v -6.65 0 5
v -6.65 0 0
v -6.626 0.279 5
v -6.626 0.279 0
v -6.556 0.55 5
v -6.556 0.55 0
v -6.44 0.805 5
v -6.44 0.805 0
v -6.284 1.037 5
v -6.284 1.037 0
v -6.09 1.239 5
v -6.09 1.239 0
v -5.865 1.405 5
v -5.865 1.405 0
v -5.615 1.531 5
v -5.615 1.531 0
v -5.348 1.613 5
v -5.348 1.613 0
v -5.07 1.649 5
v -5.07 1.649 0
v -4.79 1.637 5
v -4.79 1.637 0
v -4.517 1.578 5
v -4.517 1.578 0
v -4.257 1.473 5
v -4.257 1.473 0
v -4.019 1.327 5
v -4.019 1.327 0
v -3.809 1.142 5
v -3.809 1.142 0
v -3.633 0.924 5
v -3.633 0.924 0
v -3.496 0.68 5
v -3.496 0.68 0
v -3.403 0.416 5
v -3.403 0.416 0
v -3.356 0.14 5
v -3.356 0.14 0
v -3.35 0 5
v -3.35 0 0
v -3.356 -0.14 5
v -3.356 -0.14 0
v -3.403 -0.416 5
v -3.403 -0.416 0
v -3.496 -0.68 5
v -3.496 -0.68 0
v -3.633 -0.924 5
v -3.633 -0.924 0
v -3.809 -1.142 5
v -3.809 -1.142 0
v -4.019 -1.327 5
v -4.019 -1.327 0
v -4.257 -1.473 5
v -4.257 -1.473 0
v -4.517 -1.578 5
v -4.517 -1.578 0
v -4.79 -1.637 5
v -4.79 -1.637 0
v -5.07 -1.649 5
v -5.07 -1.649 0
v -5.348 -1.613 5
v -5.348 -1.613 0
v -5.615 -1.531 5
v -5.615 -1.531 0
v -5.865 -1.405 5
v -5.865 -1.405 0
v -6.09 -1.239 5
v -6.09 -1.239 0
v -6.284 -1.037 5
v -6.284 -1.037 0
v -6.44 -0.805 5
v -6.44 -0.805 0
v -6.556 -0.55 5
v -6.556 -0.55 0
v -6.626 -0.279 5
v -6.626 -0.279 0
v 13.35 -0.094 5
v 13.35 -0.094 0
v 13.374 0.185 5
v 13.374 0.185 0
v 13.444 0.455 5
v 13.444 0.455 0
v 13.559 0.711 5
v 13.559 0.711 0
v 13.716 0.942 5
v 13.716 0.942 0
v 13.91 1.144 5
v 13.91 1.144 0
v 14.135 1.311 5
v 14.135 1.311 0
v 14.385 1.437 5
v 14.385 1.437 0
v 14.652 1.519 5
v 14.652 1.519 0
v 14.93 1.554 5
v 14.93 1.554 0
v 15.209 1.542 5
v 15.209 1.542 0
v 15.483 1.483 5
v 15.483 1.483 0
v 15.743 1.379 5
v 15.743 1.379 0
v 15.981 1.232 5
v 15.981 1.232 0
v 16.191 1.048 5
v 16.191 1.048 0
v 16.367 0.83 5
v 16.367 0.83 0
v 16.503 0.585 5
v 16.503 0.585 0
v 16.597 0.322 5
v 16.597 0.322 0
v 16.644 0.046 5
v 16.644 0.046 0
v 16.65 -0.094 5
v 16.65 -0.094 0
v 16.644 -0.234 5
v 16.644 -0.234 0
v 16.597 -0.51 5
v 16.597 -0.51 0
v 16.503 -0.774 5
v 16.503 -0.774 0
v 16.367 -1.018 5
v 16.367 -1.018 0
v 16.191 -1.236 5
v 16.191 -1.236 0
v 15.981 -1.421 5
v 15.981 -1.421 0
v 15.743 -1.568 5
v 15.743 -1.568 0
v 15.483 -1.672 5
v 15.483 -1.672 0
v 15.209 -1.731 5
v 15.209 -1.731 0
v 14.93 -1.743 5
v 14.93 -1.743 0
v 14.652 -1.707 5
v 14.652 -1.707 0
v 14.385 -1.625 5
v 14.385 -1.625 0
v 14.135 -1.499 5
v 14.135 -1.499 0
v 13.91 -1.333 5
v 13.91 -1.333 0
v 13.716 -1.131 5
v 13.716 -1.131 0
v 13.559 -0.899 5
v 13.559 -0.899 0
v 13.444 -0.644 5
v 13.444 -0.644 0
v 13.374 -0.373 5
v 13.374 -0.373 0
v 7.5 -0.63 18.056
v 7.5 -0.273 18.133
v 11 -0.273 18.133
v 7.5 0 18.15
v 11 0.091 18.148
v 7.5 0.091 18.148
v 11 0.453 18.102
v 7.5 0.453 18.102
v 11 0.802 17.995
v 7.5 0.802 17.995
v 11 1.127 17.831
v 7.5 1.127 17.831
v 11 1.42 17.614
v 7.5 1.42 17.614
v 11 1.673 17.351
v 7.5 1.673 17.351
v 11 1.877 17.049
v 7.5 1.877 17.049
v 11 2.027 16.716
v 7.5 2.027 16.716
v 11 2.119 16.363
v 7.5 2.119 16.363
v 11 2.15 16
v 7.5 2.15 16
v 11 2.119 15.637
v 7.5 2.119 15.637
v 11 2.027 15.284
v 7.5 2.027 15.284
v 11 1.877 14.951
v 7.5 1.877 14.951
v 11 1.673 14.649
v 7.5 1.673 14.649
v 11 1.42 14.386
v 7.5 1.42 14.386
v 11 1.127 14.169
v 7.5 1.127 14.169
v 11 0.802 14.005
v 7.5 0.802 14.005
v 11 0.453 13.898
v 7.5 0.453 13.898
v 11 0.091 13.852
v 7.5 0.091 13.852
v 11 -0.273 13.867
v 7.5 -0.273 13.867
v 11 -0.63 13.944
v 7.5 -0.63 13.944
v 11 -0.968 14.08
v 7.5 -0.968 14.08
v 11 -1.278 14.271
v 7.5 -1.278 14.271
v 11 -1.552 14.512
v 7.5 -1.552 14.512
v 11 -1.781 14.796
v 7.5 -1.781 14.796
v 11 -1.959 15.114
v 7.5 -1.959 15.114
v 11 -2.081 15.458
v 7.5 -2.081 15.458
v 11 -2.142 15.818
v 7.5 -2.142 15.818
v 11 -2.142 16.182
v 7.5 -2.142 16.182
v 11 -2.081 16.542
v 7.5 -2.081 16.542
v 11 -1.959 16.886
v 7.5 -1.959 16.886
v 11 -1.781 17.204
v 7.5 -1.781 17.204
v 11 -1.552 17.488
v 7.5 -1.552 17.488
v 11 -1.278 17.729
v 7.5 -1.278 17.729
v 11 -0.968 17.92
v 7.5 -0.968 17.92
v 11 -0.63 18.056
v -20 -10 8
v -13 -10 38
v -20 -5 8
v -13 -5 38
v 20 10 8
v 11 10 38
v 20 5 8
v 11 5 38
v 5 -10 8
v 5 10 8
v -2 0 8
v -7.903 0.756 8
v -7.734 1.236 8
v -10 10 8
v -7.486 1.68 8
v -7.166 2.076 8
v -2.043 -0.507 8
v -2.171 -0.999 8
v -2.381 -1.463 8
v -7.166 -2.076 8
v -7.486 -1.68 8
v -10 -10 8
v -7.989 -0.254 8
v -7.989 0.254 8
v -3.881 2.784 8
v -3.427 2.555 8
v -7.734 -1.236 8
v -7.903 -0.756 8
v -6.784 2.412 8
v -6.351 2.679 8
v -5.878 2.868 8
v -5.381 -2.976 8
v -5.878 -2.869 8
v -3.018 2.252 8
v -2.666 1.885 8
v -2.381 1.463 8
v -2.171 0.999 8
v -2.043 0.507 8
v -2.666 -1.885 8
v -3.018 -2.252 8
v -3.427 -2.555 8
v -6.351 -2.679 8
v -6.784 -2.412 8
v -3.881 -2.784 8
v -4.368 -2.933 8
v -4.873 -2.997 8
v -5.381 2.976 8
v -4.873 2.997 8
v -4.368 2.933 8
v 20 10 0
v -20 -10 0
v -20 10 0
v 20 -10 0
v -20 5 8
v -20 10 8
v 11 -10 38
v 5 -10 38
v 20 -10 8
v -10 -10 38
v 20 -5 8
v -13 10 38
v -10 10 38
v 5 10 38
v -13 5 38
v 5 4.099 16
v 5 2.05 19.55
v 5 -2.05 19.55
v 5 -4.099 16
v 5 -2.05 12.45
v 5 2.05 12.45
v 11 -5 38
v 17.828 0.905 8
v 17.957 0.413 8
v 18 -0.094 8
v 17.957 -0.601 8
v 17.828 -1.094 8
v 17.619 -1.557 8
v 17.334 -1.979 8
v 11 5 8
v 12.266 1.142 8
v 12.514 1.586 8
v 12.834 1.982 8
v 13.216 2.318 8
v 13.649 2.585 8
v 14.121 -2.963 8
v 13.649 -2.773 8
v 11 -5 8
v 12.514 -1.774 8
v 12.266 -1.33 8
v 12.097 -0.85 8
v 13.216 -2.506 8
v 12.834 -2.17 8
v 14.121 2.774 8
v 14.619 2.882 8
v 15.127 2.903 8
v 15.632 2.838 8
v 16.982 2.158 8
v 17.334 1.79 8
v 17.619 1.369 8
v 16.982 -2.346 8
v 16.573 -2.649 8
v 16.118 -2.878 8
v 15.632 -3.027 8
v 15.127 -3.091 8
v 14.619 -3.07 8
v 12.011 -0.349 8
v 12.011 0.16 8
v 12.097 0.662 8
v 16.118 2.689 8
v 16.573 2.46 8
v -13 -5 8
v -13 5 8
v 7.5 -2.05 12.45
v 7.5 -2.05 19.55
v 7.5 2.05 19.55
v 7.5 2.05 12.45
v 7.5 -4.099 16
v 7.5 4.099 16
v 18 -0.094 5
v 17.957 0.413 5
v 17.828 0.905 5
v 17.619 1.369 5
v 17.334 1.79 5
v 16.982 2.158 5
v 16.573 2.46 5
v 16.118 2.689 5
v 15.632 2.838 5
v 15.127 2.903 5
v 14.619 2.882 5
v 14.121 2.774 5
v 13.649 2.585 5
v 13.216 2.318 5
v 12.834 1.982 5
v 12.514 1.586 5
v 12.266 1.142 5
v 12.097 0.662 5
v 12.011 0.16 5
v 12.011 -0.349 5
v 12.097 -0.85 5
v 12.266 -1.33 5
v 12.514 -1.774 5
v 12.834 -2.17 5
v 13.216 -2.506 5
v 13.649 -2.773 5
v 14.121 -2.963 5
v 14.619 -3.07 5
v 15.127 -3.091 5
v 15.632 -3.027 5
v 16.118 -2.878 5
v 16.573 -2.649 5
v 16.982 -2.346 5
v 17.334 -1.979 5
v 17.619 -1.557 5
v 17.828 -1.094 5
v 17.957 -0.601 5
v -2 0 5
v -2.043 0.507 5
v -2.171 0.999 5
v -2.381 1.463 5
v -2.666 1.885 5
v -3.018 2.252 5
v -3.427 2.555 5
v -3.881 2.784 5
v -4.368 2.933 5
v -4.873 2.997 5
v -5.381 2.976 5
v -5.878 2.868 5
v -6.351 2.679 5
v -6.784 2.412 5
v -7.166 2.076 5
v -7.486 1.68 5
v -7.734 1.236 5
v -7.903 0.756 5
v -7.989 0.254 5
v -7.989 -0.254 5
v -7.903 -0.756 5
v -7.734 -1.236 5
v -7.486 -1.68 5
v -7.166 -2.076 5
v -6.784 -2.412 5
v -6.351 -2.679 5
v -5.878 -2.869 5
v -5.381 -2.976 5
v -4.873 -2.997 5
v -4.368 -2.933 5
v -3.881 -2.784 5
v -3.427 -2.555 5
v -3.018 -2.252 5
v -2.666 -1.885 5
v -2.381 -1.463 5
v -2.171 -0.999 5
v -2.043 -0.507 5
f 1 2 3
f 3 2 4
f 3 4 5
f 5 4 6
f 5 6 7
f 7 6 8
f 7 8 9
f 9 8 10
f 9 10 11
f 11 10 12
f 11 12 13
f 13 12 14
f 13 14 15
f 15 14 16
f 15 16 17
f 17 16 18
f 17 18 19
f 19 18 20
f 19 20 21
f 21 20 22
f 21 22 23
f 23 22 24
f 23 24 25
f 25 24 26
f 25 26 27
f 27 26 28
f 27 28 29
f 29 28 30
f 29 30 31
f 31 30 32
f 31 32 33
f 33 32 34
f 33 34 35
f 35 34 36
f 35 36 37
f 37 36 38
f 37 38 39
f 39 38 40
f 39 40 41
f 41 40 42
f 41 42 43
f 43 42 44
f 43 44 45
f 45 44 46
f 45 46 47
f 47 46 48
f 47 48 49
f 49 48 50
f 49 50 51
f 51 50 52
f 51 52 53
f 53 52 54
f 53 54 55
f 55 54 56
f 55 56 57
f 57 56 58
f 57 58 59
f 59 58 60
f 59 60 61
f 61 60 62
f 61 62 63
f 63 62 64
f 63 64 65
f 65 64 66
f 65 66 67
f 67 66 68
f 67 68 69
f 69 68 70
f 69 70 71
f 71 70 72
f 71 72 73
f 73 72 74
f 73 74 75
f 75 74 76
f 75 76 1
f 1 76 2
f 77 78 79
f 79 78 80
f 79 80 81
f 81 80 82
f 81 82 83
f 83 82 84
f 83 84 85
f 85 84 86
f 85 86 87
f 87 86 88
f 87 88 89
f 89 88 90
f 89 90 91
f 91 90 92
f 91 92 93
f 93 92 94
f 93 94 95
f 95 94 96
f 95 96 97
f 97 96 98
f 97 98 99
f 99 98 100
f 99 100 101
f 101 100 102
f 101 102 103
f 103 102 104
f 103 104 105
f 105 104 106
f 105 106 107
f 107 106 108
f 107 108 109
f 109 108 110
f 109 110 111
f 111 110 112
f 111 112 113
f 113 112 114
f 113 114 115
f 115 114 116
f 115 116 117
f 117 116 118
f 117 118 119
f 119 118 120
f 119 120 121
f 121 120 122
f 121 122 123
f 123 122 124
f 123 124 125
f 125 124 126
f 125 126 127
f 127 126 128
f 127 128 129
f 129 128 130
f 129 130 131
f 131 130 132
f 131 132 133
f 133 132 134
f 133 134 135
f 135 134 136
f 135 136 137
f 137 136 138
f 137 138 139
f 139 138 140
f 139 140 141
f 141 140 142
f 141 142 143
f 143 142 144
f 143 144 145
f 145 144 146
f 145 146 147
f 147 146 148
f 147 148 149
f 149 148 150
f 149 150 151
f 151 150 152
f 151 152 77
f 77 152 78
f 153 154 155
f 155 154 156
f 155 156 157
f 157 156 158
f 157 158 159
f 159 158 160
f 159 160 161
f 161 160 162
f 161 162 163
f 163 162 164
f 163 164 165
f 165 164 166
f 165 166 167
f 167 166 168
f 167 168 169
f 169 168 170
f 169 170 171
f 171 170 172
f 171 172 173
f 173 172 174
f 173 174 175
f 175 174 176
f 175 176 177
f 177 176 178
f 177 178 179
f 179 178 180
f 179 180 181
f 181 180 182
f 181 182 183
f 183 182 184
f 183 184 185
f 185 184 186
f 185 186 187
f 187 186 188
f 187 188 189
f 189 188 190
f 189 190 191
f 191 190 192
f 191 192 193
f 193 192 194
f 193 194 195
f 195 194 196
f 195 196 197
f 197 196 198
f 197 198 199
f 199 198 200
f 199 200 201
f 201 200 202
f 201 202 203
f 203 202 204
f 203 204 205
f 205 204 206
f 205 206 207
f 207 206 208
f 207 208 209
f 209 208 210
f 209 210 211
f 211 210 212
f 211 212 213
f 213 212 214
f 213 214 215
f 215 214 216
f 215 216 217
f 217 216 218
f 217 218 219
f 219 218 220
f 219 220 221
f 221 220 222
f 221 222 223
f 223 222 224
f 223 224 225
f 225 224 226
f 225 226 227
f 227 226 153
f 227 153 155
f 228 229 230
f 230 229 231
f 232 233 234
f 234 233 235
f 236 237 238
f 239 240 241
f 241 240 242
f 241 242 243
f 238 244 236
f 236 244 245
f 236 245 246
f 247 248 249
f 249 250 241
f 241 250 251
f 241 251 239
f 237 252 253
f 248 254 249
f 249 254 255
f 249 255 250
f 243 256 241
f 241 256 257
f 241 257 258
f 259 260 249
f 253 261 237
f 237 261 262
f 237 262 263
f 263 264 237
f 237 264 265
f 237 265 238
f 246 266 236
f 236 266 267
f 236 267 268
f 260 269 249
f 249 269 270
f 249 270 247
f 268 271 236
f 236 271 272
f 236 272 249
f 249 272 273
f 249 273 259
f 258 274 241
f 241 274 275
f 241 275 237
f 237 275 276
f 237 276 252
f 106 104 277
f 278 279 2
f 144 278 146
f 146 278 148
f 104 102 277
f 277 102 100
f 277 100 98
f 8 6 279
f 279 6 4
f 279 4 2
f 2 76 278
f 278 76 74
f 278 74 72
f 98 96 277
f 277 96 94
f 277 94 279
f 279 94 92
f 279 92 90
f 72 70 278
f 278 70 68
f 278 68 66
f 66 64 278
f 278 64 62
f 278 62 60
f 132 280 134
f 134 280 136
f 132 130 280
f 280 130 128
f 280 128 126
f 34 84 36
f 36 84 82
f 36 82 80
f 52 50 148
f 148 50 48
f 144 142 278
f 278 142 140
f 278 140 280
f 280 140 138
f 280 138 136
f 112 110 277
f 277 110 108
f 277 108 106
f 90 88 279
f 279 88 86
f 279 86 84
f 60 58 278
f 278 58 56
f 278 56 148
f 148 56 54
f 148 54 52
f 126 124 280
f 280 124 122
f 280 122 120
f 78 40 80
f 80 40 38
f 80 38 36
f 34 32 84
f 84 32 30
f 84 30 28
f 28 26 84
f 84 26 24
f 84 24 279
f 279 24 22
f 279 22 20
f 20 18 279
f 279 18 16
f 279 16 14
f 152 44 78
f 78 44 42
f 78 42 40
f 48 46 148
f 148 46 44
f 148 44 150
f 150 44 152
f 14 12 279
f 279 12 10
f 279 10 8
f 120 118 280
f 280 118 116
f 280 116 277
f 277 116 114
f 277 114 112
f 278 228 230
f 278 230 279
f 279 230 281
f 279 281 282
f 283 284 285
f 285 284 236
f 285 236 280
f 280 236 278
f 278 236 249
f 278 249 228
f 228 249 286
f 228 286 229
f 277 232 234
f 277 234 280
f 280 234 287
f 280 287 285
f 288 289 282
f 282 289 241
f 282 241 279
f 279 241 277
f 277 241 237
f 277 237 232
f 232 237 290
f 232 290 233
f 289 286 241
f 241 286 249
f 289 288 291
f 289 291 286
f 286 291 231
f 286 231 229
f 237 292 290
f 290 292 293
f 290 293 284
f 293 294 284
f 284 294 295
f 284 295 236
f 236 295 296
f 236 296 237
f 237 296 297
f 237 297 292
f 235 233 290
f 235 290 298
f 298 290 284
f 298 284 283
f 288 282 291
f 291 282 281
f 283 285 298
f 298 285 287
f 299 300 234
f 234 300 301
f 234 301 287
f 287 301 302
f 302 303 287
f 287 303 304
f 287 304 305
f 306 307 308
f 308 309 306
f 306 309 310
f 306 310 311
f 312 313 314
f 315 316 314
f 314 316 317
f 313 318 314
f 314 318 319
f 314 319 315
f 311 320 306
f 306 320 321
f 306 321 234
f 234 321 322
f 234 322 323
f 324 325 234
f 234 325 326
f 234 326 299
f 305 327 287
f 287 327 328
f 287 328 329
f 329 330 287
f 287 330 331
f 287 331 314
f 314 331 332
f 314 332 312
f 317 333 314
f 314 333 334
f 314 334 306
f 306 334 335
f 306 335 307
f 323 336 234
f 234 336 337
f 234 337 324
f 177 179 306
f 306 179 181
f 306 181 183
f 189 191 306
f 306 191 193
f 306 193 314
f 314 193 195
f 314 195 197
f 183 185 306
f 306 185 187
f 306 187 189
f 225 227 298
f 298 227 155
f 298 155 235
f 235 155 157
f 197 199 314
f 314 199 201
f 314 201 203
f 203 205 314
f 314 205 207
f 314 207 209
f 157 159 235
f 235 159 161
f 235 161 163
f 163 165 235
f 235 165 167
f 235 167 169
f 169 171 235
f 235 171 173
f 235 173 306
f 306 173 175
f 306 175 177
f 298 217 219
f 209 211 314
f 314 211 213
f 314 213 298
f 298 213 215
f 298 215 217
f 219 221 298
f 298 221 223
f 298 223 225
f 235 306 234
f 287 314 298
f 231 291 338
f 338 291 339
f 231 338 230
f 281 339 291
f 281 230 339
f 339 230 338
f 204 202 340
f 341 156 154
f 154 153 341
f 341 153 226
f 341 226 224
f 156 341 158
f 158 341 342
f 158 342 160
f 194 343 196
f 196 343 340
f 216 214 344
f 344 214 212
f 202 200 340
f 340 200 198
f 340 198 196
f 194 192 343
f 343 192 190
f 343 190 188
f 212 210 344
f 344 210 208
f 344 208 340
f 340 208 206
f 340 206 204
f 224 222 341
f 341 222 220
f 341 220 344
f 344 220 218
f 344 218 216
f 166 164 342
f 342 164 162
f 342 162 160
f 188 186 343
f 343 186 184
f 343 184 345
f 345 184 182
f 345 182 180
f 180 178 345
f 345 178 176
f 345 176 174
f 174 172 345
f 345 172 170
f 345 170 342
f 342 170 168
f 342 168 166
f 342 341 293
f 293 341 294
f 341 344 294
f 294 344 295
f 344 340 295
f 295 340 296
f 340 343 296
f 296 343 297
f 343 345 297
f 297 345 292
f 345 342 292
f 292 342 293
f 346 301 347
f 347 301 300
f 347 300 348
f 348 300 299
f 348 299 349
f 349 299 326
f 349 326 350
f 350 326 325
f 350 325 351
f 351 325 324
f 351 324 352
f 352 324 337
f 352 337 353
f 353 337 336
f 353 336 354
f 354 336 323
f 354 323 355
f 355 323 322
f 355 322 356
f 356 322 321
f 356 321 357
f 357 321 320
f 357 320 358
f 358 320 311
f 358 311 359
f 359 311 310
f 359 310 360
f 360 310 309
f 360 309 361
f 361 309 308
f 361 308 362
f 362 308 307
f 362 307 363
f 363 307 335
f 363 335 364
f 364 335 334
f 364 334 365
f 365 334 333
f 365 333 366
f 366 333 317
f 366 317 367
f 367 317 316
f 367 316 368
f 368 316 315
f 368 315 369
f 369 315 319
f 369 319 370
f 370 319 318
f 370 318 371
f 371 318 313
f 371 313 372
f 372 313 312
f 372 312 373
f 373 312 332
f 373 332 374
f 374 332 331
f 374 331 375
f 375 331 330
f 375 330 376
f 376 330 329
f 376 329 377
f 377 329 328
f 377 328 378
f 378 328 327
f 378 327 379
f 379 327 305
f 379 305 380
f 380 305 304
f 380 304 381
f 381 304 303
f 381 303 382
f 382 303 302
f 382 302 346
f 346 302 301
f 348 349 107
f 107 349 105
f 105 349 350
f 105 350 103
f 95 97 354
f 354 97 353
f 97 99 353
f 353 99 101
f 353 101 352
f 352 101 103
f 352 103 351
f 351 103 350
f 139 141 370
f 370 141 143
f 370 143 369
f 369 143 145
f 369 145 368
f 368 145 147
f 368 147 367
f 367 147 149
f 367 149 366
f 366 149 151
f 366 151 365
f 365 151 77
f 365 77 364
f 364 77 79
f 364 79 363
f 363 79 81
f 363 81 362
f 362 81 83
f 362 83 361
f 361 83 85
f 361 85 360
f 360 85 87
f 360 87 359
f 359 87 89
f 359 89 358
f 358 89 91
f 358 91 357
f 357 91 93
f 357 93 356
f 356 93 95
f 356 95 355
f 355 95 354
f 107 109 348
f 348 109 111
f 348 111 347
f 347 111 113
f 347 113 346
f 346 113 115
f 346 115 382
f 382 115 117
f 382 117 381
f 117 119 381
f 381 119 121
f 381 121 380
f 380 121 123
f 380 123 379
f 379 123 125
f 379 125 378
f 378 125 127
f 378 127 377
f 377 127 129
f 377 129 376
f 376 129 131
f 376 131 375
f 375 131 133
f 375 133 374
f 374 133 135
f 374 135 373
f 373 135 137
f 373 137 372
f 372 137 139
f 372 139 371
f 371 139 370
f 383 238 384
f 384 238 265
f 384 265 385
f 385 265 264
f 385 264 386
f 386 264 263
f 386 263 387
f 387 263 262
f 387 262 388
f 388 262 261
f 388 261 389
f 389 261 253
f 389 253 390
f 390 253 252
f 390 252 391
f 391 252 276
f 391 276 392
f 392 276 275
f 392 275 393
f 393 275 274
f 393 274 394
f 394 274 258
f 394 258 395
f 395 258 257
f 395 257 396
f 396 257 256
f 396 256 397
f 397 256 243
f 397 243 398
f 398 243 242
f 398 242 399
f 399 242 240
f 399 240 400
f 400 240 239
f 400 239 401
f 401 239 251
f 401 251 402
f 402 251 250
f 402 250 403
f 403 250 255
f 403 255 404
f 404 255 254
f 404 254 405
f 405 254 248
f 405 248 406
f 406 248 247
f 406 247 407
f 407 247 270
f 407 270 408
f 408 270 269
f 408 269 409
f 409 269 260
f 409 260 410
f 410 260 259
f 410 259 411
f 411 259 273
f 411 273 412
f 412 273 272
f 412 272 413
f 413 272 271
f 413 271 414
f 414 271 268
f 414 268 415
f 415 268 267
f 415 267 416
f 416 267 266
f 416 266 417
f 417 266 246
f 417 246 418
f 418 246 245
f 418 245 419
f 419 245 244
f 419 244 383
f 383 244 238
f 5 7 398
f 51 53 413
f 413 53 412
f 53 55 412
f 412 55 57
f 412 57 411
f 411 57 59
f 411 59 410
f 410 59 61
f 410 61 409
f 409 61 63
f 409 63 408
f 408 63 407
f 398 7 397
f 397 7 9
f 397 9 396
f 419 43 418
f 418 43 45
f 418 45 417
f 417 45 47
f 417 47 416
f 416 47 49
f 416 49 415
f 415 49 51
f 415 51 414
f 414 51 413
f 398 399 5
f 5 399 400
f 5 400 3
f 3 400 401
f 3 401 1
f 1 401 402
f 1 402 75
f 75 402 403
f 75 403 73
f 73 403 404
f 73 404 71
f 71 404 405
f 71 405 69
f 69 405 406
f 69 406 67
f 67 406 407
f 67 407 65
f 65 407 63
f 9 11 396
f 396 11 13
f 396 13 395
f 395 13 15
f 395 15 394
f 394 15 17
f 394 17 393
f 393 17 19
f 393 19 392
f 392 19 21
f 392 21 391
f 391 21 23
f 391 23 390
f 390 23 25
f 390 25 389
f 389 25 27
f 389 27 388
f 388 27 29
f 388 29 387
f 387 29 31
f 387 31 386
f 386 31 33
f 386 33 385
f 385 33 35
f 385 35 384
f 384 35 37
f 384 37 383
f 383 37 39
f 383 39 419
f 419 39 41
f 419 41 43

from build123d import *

# Parameters (mm, degrees)
SKETCH1_W           = 40
SKETCH1_H           = 20
SKETCH1_R           = 1.65
BOSS_EXTRUDE1_DEPTH = 8
SKETCH3_W           = 3
SKETCH3_H           = 20
SKETCH3_W_2         = 6
BOSS_EXTRUDE2_DEPTH = 30
BOSS_EXTRUDE3_DEPTH = 20
SKETCH6_W           = 7
SKETCH6_H           = 10
SKETCH6_W_2         = 9
CUT_EXTRUDE2_DEPTH  = 30
SKETCH7_R           = 2.15
CUT_EXTRUDE3_DEPTH  = 6
CUT_EXTRUDE4_DEPTH  = 2.5
SKETCH10_R          = 3
CUT_EXTRUDE5_DEPTH  = 3


with BuildPart() as part:
    # Sketch1 → Boss-Extrude1 (new body)
    with BuildSketch(Plane.XY):
        Rectangle(SKETCH1_W, SKETCH1_H)
        with Locations((-5, 0)):
            Circle(SKETCH1_R, mode=Mode.SUBTRACT)
        with Locations((14.999778189, -0.094193404)):
            Circle(SKETCH1_R, mode=Mode.SUBTRACT)
    extrude(amount=BOSS_EXTRUDE1_DEPTH)

    # Sketch3 → Boss-Extrude2 (add)
    with BuildSketch(Plane.XY.offset(8)):
        with Locations((-11.5, 0)):
            Rectangle(SKETCH3_W, SKETCH3_H)
        with Locations((8, 0)):
            Rectangle(SKETCH3_W_2, SKETCH3_H)
    extrude(amount=BOSS_EXTRUDE2_DEPTH)

    # Sketch5 → Boss-Extrude3 (add)
    with BuildSketch(Plane(origin=(0, 10, 0), x_dir=(1, 0, 0), z_dir=(0, 1, 0))):
        Polygon((-20, -8), (-13, -38), (-13, -8), align=None)
        Polygon((20, -8), (11, -8), (11, -38), align=None)
    extrude(amount=-BOSS_EXTRUDE3_DEPTH)

    # Sketch6 → Cut-Extrude2 (cut)
    with BuildSketch(Plane.XY.offset(38)):
        with Locations((-16.5, 0)):
            Rectangle(SKETCH6_W, SKETCH6_H)
        with Locations((15.5, 0)):
            Rectangle(SKETCH6_W_2, SKETCH6_H)
    extrude(amount=-CUT_EXTRUDE2_DEPTH, mode=Mode.SUBTRACT)

    # Sketch7 → Cut-Extrude3 (cut)
    with BuildSketch(Plane(origin=(11, 0, 0), x_dir=(0, 0, -1), z_dir=(1, 0, 0))):
        with Locations(Location((-16, 0, 0), (0, 0, 90))):
            Circle(SKETCH7_R)
    extrude(amount=-CUT_EXTRUDE3_DEPTH, mode=Mode.SUBTRACT)

    # Sketch8 → Cut-Extrude4 (cut)
    with BuildSketch(Plane.ZY.offset(-5)):
        Polygon((19.55, 2.049593456), (16, 4.099186911), (12.45, 2.049593456), (12.45, -2.049593456), (16, -4.099186911), (19.55, -2.049593456), align=None)
    extrude(amount=-CUT_EXTRUDE4_DEPTH, mode=Mode.SUBTRACT)

    # Sketch10 → Cut-Extrude5 (cut)
    with BuildSketch(Plane.XY.offset(8)):
        with Locations((-5, 0)):
            Circle(SKETCH10_R)
        with Locations((14.999778189, -0.094193404)):
            Circle(SKETCH10_R)
    extrude(amount=-CUT_EXTRUDE5_DEPTH, mode=Mode.SUBTRACT)


solid = part.part
